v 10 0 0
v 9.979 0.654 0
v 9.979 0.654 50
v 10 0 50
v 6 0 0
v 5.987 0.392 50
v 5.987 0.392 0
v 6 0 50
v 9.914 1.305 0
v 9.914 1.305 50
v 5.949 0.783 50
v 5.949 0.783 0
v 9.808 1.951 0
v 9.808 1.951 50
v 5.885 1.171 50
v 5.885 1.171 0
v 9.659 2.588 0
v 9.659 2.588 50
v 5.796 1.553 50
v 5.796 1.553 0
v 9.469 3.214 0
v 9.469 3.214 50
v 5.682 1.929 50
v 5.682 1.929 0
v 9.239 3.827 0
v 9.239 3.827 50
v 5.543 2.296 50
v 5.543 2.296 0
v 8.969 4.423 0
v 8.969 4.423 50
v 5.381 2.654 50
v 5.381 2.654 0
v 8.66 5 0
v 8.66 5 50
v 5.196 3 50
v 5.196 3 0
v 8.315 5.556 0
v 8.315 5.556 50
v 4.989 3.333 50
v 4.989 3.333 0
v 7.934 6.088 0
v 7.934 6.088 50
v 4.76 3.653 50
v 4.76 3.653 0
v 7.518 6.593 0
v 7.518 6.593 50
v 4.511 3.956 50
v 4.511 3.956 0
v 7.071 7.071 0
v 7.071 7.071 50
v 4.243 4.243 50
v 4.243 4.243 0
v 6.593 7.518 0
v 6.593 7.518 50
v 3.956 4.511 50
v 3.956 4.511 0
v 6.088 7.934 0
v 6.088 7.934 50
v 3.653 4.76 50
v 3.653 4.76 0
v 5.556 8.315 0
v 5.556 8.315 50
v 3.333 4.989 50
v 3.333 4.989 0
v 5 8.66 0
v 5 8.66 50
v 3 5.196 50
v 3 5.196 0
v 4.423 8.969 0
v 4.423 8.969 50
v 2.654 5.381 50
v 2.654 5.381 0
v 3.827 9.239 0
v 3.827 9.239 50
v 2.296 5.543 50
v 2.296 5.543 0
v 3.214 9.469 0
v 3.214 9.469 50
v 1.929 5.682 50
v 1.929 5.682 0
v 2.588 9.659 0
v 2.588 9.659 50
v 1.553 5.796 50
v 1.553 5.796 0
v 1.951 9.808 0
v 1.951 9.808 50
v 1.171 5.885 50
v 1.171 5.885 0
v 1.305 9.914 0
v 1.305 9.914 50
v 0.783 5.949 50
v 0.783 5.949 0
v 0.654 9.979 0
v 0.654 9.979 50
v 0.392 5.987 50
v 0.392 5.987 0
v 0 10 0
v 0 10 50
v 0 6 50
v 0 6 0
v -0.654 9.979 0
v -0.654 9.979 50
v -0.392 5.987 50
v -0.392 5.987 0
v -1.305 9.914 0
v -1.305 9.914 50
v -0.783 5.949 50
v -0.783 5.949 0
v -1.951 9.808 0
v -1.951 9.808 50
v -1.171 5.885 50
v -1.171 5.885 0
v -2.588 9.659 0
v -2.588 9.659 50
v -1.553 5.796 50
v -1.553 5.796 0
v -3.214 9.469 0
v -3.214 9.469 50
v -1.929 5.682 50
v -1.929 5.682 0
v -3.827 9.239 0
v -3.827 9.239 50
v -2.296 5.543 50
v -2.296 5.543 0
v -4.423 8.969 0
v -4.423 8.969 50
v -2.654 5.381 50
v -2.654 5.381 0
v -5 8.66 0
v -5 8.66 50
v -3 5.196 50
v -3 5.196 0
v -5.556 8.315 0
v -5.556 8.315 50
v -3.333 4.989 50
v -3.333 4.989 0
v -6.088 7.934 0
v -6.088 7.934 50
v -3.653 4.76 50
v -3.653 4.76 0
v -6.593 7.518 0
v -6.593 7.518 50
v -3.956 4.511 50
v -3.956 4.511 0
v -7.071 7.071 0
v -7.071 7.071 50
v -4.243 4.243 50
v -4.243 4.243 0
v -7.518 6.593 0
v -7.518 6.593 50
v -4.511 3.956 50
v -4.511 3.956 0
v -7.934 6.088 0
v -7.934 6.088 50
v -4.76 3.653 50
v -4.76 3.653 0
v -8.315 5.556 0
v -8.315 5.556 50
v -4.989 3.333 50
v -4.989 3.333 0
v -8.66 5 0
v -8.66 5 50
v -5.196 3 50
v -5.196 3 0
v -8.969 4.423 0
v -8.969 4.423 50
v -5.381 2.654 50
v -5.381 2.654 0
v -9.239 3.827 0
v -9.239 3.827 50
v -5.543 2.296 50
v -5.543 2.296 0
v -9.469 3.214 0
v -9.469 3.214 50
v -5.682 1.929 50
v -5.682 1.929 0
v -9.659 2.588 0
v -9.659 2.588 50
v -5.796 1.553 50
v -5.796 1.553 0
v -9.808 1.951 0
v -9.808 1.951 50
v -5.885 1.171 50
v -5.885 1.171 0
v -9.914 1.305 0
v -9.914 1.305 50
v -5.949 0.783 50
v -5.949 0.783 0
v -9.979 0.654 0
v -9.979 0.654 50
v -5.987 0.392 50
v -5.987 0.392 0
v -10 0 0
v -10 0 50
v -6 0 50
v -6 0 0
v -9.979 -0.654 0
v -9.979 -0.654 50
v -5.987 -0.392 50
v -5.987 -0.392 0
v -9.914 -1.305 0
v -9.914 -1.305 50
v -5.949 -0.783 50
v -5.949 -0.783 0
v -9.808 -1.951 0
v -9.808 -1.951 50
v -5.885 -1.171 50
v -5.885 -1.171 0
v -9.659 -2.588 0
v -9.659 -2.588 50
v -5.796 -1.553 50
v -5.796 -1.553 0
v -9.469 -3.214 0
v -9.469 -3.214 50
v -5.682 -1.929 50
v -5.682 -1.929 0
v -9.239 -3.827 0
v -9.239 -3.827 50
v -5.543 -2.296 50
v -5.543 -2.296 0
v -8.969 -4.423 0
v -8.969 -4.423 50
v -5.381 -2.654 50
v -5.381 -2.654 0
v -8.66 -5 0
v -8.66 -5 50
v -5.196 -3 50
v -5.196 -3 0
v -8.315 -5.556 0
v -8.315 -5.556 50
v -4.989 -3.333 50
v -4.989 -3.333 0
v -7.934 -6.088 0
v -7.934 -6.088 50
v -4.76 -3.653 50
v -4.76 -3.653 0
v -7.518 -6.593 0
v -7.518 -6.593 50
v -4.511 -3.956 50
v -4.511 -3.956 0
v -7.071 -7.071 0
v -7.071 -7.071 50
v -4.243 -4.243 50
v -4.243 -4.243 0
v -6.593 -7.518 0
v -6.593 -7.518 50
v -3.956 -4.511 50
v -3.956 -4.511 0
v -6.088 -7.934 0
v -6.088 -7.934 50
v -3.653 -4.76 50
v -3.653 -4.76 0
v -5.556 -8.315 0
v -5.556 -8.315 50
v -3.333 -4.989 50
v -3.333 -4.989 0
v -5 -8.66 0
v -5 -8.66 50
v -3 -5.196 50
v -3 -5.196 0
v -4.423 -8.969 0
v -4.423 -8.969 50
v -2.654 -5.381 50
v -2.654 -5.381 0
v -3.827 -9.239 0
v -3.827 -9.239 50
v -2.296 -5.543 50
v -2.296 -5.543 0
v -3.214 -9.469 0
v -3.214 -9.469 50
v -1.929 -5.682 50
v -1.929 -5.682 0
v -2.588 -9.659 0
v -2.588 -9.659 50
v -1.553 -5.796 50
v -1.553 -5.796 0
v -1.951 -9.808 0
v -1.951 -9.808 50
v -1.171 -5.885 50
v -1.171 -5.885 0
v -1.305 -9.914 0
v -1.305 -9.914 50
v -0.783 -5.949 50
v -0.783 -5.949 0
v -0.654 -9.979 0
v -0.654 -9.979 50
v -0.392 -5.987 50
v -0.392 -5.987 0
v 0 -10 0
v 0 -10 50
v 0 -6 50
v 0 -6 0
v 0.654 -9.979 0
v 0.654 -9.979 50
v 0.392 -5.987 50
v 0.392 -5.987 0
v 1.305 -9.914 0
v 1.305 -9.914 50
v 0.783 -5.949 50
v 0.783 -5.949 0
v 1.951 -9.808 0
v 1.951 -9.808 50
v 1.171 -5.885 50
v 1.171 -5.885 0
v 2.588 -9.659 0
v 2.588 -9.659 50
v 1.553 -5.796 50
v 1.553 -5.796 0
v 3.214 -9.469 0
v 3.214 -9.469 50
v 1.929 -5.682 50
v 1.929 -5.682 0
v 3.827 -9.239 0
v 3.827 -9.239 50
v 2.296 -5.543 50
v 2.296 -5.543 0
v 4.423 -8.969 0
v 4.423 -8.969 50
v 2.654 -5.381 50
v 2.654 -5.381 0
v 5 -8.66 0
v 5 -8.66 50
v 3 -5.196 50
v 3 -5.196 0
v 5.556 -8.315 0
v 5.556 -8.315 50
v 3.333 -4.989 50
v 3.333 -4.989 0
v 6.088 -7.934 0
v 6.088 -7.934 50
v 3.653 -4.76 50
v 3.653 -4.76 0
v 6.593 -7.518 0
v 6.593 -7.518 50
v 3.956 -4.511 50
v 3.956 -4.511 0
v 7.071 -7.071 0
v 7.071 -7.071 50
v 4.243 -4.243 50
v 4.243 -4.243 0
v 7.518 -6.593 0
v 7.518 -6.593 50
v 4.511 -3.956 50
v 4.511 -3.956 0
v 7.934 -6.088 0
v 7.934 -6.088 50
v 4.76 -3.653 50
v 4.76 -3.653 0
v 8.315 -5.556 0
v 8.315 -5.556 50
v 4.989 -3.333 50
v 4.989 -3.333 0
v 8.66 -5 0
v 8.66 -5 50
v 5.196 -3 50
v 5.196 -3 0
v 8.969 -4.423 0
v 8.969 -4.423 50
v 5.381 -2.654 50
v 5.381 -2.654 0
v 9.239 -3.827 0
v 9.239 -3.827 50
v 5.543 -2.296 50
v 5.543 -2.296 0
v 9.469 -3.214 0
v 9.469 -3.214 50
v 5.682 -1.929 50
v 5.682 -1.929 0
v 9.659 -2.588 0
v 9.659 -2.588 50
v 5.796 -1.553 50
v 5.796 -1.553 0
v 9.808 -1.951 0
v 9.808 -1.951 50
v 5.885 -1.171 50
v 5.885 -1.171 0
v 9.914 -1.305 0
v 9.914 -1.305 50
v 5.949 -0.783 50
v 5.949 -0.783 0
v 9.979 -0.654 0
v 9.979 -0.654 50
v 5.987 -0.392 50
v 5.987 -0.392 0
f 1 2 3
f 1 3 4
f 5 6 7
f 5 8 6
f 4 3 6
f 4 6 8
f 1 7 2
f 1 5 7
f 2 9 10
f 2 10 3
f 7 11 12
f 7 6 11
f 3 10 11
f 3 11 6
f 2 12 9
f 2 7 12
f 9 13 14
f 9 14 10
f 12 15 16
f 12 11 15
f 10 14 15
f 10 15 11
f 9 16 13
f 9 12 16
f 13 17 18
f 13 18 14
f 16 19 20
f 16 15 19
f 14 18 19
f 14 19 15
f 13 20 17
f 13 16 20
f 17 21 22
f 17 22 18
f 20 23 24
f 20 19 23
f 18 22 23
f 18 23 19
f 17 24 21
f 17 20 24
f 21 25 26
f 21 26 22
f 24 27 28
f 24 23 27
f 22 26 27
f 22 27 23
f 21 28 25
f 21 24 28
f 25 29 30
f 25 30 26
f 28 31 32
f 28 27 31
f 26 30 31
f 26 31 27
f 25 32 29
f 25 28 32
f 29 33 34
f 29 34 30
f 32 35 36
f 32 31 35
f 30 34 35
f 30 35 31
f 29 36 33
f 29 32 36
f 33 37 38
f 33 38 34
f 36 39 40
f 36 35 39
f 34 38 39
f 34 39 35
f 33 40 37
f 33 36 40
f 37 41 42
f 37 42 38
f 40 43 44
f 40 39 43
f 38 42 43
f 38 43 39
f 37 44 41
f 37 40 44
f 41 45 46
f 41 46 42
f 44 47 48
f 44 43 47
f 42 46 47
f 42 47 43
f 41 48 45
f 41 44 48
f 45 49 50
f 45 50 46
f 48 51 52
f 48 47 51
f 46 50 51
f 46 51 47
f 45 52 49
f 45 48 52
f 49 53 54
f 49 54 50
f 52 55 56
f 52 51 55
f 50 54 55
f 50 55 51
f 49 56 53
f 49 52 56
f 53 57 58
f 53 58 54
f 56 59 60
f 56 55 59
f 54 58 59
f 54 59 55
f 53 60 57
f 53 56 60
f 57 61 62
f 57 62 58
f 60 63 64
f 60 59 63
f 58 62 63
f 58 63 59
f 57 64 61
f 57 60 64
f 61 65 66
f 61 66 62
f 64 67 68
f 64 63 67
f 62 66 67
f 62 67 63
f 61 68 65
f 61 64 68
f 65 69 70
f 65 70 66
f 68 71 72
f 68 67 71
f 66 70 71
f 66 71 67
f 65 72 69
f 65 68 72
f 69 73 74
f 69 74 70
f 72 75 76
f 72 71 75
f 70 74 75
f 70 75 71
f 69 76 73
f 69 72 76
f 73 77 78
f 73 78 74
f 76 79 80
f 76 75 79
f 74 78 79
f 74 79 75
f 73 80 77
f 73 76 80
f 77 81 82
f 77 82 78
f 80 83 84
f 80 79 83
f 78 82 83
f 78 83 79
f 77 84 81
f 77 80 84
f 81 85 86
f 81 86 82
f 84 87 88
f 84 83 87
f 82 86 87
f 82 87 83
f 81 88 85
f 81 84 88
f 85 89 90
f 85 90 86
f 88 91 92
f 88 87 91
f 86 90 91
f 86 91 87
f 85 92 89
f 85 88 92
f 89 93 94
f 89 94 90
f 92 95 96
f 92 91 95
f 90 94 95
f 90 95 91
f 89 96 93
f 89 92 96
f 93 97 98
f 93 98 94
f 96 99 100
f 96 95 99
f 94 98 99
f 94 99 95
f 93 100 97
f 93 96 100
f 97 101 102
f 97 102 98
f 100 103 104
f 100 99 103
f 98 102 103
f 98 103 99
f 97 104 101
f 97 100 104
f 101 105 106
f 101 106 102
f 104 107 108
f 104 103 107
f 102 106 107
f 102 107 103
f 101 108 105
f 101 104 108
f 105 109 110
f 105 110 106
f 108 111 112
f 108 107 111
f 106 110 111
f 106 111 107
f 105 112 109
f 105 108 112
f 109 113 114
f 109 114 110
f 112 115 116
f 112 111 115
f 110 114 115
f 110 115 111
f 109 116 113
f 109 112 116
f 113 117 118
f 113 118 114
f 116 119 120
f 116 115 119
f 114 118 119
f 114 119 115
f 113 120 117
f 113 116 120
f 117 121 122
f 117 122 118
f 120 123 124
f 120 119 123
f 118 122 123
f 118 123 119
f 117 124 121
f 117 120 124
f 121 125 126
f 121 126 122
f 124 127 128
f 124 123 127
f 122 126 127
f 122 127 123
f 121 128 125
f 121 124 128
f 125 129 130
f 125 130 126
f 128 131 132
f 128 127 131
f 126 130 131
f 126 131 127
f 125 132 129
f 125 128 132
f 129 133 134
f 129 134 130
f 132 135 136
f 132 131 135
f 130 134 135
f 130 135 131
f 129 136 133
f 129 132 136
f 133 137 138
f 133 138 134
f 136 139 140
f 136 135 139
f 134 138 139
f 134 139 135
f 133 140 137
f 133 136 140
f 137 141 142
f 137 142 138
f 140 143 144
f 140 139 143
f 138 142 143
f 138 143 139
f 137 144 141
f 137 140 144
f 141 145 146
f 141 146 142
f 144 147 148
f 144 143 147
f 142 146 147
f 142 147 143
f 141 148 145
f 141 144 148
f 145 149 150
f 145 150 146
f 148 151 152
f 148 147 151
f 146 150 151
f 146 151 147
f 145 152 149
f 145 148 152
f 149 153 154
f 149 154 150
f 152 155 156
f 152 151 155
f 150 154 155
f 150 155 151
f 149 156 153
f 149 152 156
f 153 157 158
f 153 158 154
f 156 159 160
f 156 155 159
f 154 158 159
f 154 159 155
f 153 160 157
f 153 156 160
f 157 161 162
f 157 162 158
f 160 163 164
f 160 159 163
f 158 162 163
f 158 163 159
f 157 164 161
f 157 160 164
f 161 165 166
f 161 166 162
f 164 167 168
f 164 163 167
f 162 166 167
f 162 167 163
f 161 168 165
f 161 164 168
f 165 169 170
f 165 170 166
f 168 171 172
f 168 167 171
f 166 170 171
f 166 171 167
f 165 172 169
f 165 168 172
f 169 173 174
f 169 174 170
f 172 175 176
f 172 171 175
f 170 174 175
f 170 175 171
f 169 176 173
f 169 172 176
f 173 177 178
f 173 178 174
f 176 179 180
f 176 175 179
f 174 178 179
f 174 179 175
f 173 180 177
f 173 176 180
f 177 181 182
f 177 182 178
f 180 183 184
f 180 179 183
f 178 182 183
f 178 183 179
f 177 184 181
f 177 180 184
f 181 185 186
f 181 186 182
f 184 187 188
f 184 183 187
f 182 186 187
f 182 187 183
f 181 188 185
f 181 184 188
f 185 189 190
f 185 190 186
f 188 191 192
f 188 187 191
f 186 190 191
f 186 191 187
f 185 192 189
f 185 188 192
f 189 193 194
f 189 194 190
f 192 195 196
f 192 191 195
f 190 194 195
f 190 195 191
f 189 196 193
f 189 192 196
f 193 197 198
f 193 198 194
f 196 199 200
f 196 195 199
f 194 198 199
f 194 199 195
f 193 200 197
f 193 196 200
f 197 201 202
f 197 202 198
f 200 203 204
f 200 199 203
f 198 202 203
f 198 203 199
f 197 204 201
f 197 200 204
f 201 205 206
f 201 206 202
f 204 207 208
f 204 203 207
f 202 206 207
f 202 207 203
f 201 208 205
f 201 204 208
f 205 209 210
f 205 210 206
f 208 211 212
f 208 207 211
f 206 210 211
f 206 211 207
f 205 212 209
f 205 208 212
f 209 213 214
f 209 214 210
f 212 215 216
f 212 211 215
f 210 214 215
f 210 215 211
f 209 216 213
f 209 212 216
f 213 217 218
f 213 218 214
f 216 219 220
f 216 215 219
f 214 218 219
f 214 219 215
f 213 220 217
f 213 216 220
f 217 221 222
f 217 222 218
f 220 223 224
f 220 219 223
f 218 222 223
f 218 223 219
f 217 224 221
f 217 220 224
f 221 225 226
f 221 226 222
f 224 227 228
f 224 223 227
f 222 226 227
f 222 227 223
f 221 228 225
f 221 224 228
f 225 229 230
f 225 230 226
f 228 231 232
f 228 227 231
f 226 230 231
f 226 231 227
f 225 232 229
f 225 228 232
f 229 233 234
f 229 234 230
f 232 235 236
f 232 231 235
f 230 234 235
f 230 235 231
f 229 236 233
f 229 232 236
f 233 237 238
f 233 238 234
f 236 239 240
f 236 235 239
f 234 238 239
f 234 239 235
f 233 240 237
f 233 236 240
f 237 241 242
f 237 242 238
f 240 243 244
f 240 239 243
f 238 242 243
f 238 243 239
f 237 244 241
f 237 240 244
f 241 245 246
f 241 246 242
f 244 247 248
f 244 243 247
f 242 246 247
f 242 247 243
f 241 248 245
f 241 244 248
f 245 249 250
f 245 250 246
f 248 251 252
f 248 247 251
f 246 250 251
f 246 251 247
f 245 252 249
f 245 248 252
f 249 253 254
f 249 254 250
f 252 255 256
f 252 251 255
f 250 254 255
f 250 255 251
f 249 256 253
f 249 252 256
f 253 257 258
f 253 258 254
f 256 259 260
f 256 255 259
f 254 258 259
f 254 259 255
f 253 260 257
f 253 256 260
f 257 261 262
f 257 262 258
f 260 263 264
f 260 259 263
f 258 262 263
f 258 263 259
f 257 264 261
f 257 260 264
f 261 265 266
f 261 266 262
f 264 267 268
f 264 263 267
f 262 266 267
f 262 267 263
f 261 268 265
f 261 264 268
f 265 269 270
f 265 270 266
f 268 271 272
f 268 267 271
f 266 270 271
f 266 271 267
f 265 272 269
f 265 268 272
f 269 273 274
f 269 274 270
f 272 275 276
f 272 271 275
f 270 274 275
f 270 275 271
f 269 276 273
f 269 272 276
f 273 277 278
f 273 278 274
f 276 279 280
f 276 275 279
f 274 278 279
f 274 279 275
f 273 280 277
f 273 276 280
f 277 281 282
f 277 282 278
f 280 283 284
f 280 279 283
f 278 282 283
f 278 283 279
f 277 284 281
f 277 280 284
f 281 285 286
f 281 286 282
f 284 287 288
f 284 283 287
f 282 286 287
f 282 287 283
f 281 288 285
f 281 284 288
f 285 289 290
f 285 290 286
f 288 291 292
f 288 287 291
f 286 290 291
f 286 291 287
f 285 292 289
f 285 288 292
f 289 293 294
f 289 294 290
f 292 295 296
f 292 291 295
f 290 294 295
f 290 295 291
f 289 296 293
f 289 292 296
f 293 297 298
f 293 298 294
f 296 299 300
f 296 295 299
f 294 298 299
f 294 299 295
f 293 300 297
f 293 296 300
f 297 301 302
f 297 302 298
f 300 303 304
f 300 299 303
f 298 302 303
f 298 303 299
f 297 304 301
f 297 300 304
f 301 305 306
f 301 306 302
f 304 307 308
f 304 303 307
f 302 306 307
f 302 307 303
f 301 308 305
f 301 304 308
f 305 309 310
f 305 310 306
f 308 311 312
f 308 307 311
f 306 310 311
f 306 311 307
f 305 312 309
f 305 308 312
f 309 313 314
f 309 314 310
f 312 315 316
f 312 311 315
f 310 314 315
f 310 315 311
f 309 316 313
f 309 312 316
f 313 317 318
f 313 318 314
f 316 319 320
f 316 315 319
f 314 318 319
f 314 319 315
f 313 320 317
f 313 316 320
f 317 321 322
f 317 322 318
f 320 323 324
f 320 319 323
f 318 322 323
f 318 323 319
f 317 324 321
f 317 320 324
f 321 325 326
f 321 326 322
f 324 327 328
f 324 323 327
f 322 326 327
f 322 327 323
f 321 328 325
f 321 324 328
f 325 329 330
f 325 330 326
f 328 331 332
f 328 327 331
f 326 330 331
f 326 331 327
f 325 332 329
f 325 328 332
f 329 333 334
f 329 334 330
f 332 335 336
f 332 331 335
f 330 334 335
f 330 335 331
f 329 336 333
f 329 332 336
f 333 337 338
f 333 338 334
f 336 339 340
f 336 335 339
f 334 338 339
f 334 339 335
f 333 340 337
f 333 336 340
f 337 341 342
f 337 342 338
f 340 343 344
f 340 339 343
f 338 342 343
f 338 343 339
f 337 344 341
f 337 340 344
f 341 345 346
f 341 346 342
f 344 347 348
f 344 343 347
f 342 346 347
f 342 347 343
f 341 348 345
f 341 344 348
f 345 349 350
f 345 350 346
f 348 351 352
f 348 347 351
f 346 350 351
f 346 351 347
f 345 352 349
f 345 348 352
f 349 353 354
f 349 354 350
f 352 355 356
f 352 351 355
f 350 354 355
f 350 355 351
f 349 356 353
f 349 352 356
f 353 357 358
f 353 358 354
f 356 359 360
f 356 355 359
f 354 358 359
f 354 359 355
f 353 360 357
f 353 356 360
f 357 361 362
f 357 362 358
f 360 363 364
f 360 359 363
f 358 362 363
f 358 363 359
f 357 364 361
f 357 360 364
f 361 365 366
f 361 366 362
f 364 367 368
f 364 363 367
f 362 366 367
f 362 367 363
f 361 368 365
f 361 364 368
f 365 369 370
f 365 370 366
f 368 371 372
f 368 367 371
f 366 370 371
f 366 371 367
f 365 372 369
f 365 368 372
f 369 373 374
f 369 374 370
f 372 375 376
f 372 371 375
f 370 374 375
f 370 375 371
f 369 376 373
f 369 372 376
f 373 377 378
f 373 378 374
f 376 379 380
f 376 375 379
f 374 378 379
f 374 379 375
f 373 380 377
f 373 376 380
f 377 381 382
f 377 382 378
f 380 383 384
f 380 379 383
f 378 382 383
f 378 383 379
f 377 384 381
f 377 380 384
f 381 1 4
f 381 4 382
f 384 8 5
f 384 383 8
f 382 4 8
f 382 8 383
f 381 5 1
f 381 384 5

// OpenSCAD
// Original MechIntel educational model. CC0-1.0. Units: mm.
// Not a standardized or load-rated component.
$fn=96;
outer_diameter=20;
inner_diameter=12;
height=50;
difference(){ cylinder(d=outer_diameter,h=height); if(inner_diameter>0) translate([0,0,-1]) cylinder(d=inner_diameter,h=height+2); }
